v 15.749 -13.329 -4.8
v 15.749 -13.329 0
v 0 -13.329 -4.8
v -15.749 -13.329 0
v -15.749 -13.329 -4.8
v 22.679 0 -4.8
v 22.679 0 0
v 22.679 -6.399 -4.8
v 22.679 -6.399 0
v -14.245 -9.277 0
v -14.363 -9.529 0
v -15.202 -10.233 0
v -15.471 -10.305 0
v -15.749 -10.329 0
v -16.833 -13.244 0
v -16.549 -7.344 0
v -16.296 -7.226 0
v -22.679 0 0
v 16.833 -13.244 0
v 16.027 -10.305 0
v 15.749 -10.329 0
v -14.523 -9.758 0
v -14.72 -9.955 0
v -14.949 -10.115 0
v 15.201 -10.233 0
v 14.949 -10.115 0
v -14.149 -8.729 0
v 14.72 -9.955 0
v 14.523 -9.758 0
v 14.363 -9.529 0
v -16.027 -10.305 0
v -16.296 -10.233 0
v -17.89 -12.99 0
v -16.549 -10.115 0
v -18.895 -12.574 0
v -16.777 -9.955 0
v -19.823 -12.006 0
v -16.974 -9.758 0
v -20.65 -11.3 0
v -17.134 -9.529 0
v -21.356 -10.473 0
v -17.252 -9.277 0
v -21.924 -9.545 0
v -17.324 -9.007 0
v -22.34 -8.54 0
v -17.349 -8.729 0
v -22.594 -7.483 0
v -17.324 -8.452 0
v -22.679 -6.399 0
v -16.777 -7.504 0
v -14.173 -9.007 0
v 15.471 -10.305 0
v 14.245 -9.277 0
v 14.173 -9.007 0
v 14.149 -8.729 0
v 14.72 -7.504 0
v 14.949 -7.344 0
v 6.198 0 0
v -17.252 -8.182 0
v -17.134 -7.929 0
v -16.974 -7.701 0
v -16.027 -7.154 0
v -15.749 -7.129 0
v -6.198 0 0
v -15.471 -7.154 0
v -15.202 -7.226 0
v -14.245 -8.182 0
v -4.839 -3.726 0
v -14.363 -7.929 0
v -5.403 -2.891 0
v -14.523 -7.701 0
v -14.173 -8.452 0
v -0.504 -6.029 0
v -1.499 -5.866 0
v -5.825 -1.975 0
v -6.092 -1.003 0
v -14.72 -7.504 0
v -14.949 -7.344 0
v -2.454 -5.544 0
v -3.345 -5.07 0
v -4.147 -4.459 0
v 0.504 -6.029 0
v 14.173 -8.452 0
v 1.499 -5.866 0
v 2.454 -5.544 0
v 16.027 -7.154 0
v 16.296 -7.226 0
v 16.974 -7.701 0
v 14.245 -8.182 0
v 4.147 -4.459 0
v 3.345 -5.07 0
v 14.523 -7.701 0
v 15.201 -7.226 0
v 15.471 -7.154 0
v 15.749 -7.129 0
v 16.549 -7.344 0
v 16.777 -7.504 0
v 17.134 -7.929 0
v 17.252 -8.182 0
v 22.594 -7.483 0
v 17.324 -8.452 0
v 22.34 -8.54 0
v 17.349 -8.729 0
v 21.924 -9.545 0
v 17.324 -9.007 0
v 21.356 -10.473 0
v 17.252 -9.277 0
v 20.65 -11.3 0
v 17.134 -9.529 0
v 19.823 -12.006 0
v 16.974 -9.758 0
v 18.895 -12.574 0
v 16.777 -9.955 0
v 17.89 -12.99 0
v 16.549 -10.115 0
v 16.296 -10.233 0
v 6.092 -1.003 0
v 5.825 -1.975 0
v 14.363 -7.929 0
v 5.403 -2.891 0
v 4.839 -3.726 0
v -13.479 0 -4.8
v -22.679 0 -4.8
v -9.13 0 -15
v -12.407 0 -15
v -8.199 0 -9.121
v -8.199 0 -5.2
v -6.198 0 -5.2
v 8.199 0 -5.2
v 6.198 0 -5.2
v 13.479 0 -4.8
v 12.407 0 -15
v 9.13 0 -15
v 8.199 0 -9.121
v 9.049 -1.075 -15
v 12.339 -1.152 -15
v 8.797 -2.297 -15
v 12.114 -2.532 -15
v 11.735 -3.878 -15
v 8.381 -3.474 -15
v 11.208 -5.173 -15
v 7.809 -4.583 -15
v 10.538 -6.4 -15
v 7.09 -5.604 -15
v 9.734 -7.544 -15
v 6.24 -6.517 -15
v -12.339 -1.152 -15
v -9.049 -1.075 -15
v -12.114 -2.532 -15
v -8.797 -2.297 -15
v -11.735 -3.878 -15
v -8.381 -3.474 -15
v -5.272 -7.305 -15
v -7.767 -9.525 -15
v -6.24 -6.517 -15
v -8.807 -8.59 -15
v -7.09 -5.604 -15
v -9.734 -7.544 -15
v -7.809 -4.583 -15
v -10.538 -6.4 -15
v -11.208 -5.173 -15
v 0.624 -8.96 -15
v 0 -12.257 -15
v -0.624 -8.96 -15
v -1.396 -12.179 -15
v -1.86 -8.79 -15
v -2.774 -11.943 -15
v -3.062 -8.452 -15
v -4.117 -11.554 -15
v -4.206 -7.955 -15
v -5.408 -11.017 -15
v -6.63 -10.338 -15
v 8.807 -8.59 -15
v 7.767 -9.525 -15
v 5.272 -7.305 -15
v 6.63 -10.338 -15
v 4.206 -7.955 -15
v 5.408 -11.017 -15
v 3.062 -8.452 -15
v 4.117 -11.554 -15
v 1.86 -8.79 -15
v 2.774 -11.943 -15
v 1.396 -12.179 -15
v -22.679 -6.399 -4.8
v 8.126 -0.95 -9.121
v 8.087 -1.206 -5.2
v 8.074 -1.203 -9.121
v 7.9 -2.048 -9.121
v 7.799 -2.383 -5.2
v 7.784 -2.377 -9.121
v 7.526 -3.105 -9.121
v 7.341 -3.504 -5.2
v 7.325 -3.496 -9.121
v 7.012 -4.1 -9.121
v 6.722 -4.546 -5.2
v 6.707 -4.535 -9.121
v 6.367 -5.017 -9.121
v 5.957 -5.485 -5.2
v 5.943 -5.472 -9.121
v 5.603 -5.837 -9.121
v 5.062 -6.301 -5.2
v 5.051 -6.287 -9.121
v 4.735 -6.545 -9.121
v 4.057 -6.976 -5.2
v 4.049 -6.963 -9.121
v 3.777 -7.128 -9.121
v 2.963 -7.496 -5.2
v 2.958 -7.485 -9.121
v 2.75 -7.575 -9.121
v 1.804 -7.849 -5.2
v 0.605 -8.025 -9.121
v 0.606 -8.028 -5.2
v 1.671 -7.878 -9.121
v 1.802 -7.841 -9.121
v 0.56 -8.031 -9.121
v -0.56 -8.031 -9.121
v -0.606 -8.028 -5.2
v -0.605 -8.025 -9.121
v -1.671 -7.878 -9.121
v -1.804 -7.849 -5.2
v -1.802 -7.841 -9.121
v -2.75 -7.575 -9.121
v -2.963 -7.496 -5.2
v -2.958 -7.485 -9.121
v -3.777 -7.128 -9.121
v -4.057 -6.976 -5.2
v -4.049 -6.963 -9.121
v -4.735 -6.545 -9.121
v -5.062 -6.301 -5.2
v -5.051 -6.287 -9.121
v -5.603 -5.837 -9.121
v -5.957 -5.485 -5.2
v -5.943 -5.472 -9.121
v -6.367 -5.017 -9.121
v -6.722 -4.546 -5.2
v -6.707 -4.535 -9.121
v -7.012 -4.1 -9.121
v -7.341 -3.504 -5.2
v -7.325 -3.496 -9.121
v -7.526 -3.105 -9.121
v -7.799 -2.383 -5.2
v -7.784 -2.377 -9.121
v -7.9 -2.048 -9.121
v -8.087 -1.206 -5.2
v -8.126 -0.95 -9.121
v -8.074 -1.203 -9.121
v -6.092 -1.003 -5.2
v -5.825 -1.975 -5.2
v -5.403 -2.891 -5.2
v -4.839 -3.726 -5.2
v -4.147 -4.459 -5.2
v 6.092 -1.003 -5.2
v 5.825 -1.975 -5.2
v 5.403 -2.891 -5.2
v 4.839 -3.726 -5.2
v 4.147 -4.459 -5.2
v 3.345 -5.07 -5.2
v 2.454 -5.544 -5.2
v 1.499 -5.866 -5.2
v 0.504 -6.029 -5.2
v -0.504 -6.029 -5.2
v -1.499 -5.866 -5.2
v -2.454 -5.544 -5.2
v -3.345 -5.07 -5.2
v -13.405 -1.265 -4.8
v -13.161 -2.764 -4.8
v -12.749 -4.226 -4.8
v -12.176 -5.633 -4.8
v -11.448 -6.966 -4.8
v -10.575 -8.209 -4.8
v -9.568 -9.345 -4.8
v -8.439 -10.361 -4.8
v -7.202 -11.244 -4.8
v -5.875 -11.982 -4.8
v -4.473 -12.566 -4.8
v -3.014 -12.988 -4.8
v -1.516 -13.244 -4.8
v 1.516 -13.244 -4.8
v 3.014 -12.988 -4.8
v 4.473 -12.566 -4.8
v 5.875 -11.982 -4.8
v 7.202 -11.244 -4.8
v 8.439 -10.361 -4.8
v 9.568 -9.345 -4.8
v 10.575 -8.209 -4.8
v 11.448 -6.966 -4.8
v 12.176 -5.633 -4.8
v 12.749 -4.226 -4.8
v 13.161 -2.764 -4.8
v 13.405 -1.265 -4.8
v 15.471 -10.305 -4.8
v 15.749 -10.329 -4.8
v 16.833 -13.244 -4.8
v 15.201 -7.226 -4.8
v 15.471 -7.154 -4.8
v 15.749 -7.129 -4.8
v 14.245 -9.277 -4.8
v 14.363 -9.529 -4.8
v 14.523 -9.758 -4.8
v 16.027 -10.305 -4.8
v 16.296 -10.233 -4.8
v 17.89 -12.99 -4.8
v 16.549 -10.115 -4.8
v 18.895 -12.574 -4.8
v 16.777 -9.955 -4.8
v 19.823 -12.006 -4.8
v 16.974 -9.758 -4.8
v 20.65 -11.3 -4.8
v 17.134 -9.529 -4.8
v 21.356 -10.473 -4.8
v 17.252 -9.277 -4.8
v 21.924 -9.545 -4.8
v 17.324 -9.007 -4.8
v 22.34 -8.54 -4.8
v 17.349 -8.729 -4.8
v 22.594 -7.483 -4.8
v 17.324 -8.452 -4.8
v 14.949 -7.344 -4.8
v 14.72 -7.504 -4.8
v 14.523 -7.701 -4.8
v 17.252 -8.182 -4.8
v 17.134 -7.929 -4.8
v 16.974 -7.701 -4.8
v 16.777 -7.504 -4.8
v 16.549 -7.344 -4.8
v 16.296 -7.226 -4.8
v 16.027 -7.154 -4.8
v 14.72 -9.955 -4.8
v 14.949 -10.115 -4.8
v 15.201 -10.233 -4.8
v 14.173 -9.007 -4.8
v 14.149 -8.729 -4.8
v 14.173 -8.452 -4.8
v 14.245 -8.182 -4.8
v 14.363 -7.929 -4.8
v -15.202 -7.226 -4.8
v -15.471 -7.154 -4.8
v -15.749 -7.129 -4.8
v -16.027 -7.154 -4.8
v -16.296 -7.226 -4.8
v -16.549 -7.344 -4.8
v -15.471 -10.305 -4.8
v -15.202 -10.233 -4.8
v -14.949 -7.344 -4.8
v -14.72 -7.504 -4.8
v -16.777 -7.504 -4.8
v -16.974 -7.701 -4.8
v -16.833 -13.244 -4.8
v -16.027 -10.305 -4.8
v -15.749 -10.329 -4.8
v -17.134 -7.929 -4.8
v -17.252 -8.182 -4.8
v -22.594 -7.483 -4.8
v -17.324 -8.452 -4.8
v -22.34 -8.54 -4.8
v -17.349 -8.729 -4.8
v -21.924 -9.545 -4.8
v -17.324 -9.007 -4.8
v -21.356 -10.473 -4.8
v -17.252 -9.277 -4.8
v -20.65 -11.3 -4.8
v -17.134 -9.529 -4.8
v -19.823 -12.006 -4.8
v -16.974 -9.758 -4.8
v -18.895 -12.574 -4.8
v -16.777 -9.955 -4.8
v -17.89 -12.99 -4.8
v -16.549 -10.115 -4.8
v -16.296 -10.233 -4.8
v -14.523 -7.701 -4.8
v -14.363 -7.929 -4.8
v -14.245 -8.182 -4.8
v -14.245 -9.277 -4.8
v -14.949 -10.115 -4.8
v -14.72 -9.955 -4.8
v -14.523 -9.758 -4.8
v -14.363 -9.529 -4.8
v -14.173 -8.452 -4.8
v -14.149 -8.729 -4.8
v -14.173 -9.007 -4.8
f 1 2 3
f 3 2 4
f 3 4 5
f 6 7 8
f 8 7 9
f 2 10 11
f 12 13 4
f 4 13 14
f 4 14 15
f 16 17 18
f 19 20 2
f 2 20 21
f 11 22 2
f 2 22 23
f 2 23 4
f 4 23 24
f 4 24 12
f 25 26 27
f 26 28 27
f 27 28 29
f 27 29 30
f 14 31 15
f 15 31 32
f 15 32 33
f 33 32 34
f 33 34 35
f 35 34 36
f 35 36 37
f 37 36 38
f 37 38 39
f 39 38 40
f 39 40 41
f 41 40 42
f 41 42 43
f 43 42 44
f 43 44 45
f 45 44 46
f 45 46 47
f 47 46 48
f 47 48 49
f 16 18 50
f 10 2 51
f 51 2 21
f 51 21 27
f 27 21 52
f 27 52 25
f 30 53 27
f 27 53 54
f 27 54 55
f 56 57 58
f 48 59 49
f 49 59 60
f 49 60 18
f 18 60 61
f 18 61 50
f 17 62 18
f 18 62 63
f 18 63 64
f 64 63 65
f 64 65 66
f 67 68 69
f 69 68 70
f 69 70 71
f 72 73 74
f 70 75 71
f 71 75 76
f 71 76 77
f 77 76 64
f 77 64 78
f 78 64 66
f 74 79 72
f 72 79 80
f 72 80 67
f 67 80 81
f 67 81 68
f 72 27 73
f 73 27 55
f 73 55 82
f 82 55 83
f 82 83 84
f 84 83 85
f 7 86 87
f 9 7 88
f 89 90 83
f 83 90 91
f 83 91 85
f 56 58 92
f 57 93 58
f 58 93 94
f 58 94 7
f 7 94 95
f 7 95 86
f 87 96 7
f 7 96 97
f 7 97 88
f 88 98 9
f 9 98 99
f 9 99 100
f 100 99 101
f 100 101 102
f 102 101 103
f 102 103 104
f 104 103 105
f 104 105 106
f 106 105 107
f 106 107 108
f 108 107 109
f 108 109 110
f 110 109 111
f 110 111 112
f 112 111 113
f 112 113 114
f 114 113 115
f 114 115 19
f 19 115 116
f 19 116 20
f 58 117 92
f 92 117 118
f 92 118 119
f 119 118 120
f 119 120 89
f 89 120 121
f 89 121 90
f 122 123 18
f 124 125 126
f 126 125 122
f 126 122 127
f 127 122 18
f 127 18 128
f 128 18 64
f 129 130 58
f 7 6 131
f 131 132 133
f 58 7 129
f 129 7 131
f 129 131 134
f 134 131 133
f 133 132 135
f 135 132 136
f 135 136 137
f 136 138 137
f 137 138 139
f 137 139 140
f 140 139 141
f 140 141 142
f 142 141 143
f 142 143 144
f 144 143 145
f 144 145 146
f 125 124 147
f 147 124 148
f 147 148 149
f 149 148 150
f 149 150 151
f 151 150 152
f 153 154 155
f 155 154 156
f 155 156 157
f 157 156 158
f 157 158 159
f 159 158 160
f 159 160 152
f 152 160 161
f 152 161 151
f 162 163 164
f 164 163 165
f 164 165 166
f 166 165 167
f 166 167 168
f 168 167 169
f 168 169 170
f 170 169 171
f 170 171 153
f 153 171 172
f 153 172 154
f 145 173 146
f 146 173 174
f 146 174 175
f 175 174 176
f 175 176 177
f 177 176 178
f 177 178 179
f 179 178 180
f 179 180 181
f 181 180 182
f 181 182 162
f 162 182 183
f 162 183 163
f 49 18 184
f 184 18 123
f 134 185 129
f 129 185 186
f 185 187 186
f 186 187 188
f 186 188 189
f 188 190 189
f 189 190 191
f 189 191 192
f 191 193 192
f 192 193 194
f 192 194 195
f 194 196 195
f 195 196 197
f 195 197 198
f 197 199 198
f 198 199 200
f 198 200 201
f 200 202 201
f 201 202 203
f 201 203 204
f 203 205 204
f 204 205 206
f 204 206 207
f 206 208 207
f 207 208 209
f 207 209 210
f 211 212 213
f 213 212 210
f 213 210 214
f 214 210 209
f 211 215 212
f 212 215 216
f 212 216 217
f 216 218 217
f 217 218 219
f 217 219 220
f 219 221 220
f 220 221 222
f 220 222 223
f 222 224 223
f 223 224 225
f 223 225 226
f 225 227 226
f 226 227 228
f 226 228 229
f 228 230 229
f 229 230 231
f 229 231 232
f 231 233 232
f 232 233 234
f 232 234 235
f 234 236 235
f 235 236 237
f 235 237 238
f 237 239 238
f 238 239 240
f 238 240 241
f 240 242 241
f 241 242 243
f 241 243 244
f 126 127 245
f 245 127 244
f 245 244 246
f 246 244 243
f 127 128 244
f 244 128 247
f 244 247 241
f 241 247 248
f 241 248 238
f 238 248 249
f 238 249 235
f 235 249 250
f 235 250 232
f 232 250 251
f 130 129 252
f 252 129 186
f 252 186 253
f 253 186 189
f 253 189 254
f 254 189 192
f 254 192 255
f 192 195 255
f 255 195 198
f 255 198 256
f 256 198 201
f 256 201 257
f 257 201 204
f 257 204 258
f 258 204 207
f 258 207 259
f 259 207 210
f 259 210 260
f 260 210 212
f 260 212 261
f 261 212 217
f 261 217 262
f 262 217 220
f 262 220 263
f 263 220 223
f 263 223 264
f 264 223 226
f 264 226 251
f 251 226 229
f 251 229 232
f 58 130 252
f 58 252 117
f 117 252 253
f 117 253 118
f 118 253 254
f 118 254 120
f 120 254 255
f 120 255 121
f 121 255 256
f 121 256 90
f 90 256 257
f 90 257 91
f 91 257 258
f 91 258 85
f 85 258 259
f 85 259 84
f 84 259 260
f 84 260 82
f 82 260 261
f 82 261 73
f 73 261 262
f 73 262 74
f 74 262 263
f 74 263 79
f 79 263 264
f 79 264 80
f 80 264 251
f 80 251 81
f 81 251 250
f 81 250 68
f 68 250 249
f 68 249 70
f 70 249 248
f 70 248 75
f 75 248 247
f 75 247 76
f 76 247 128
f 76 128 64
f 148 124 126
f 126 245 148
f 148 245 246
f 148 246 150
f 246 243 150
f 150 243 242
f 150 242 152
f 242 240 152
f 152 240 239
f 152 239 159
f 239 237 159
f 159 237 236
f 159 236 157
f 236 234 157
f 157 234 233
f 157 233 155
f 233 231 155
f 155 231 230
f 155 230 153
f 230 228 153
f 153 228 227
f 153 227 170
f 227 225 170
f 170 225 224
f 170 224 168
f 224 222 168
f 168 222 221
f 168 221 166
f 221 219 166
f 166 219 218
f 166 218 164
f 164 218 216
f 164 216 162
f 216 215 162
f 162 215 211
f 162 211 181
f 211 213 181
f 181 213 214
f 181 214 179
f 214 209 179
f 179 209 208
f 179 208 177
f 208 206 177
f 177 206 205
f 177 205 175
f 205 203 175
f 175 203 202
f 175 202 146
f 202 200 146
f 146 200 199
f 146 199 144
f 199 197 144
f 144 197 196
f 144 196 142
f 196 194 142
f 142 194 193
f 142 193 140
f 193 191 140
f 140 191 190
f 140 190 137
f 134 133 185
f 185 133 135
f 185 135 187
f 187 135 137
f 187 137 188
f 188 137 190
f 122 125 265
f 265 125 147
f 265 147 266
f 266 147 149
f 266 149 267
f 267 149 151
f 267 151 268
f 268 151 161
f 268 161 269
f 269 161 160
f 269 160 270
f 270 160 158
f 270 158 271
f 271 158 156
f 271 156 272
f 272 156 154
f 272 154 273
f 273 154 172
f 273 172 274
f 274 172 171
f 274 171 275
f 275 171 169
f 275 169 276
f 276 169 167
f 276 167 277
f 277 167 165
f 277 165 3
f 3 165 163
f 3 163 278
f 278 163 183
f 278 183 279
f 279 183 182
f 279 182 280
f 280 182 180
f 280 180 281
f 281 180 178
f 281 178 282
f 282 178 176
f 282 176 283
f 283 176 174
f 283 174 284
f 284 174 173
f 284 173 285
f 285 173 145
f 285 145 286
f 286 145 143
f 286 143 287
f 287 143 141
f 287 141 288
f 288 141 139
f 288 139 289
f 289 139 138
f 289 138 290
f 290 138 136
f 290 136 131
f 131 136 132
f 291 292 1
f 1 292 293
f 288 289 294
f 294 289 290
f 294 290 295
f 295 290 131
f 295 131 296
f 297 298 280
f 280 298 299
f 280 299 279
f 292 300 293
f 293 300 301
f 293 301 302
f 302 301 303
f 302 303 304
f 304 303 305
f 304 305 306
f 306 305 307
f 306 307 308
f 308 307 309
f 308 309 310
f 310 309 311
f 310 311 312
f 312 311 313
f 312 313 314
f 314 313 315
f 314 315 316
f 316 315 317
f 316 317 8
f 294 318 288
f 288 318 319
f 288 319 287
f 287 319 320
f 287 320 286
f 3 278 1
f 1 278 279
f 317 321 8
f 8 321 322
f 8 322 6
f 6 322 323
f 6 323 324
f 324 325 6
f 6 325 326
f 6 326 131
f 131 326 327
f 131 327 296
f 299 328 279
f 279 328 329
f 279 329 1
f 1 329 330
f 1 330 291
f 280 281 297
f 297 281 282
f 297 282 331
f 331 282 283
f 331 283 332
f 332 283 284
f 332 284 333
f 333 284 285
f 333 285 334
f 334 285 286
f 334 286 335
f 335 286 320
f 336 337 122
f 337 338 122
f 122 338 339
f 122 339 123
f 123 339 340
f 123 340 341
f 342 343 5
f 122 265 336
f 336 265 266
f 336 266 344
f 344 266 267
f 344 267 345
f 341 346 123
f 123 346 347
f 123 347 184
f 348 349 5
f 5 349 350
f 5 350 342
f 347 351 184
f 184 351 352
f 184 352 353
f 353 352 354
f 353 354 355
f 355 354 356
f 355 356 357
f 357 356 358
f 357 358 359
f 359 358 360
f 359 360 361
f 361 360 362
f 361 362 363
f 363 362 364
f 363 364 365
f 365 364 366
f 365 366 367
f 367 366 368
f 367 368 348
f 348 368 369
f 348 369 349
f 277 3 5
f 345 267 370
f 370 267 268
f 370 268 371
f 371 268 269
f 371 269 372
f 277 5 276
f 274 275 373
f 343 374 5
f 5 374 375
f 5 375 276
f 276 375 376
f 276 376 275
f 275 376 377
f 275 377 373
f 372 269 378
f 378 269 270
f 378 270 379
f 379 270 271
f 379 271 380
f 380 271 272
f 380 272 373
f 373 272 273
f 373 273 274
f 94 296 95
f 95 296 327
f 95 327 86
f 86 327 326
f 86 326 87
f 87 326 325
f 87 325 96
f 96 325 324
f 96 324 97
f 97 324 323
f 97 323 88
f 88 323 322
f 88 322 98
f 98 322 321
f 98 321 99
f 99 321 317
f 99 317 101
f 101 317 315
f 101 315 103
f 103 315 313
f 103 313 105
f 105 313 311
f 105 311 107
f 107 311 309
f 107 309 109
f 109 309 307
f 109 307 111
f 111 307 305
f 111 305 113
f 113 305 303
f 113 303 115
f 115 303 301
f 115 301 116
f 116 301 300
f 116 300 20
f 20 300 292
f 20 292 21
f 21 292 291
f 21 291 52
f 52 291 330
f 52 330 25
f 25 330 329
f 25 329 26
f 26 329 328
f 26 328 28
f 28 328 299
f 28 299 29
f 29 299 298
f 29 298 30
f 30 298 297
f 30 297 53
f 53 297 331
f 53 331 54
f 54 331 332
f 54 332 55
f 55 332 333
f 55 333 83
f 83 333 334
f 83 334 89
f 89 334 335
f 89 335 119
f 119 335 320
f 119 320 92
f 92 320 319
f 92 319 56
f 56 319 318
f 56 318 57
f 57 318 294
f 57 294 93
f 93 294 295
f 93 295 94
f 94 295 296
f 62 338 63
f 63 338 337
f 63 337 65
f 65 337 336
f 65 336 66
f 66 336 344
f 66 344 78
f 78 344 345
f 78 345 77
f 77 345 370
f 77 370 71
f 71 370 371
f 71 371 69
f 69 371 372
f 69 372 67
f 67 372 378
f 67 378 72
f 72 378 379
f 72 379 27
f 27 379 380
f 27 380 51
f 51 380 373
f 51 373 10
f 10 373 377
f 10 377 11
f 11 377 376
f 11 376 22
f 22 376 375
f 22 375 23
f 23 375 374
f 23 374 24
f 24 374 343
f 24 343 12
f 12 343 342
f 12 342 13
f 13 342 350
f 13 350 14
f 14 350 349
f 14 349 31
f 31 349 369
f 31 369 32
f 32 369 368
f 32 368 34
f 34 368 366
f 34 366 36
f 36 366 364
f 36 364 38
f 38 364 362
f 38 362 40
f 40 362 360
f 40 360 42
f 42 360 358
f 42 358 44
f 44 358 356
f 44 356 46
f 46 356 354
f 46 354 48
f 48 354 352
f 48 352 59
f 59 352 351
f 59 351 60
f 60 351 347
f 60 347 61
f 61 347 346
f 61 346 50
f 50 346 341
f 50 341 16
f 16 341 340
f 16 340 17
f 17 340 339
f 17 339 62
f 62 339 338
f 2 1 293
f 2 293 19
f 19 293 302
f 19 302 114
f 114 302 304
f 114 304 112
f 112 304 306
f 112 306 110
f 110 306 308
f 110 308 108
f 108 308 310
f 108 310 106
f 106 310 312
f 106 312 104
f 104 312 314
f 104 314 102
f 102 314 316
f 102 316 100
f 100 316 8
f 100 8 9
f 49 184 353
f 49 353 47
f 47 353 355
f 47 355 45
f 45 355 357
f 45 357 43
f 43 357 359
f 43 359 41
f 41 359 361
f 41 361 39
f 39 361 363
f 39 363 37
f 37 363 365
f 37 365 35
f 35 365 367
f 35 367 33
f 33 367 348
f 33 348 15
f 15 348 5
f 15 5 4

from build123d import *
from OCP.BRepAlgoAPI import BRepAlgoAPI_Cut
from OCP.TopTools import TopTools_ListOfShape

# Parameters (mm, degrees)
BOSS_EXTRUDE2_DEPTH      = 22.67949
BOSS_EXTRUDE2_DEPTH_BACK = 22.67949
SKETCH5_R                = 1.6
CUT_EXTRUDE1_DEPTH       = 29.214793281


with BuildPart() as part:
    # Sketch3 → Boss-Extrude2 (new, two sides: drawn at the far end of the back side and taken through both)
    with BuildSketch(Plane(origin=(0, 0, 0), x_dir=(0, 0, -1), z_dir=(1, 0, 0)).offset(-BOSS_EXTRUDE2_DEPTH_BACK)):
        Polygon((4.8, -13.329489609), (0, -13.329489609), (0, 0), (15, 0), (15, -12.25742641), align=None)
    extrude(amount=BOSS_EXTRUDE2_DEPTH + BOSS_EXTRUDE2_DEPTH_BACK)

    # Sketch2 → Cut-Revolve1 (revolve, cut)
    with BuildSketch(Plane(origin=(0, 0, 0), x_dir=(0, 0, -1), z_dir=(1, 0, 0))):
        Polygon((15, 0.15), (0, 0.15), (0, -6.05), (5.2, -6.05), (5.2, -8.05), (9.121020847, -8.05), (15, -8.981138823), align=None)
    revolve(axis=Axis((0, 0.15, -15), (0, 0, 1)), mode=Mode.SUBTRACT)

    # Sketch4 → Cut-Revolve2 (revolve, cut)
    with BuildSketch(Plane(origin=(0, 0.15, -14), x_dir=(0, 0, -1), z_dir=(1, 0, 0))):
        Polygon((1, 12.40742641), (-9.2, 13.479489609), (-9.2, 37.679985647), (1, 37.679985647), align=None)
    revolve(axis=Axis((0, 0.15, -14), (0, 0, 1)), mode=Mode.SUBTRACT)


with BuildPart() as cut_extrude1_tool:
    # Sketch5 → Cut-Extrude1 (new, through all)
    with BuildSketch(Plane(origin=(0, 0, -4.8), x_dir=(-1, 0, 0), z_dir=(0, 0, -1))):
        with Locations(Location((-15.748733562, -8.729489609, 0), (0, 0, 90))):
            Circle(SKETCH5_R)
        with Locations(Location((15.748733562, -8.729489609, 0), (0, 0, 270))):
            Circle(SKETCH5_R)
        with BuildLine():
            Line((-22.679489609, -13.329489609), (-22.679489609, -6.398733562))
            ThreePointArc((-22.679489609, -6.398733562), (-20.649518162, -11.299518162), (-15.748733562, -13.329489609))
            Line((-15.748733562, -13.329489609), (-22.679489609, -13.329489609))
        make_face()
        with BuildLine():
            Line((22.679489609, -13.329489609), (22.679489609, -6.398733562))
            ThreePointArc((22.679489609, -6.398733562), (20.649518162, -11.299518162), (15.748733562, -13.329489609))
            Line((15.748733562, -13.329489609), (22.679489609, -13.329489609))
        make_face()
    extrude(amount=-CUT_EXTRUDE1_DEPTH)


with BuildPart() as part_1:
    add(part.part)

    # Cut-Extrude1: cut by cut_extrude1_tool, with a tolerance
    cut_extrude1_stock = TopTools_ListOfShape()
    cut_extrude1_stock.Append(part_1.part.wrapped)
    cut_extrude1_tools = TopTools_ListOfShape()
    cut_extrude1_tools.Append(cut_extrude1_tool.part.wrapped)
    cut_extrude1_cut = BRepAlgoAPI_Cut()
    cut_extrude1_cut.SetArguments(cut_extrude1_stock)
    cut_extrude1_cut.SetTools(cut_extrude1_tools)
    cut_extrude1_cut.SetFuzzyValue(0.00001)
    cut_extrude1_cut.Build()
    add(Compound.cast(cut_extrude1_cut.Shape()).solids(), mode=Mode.REPLACE)


solid = part_1.part
